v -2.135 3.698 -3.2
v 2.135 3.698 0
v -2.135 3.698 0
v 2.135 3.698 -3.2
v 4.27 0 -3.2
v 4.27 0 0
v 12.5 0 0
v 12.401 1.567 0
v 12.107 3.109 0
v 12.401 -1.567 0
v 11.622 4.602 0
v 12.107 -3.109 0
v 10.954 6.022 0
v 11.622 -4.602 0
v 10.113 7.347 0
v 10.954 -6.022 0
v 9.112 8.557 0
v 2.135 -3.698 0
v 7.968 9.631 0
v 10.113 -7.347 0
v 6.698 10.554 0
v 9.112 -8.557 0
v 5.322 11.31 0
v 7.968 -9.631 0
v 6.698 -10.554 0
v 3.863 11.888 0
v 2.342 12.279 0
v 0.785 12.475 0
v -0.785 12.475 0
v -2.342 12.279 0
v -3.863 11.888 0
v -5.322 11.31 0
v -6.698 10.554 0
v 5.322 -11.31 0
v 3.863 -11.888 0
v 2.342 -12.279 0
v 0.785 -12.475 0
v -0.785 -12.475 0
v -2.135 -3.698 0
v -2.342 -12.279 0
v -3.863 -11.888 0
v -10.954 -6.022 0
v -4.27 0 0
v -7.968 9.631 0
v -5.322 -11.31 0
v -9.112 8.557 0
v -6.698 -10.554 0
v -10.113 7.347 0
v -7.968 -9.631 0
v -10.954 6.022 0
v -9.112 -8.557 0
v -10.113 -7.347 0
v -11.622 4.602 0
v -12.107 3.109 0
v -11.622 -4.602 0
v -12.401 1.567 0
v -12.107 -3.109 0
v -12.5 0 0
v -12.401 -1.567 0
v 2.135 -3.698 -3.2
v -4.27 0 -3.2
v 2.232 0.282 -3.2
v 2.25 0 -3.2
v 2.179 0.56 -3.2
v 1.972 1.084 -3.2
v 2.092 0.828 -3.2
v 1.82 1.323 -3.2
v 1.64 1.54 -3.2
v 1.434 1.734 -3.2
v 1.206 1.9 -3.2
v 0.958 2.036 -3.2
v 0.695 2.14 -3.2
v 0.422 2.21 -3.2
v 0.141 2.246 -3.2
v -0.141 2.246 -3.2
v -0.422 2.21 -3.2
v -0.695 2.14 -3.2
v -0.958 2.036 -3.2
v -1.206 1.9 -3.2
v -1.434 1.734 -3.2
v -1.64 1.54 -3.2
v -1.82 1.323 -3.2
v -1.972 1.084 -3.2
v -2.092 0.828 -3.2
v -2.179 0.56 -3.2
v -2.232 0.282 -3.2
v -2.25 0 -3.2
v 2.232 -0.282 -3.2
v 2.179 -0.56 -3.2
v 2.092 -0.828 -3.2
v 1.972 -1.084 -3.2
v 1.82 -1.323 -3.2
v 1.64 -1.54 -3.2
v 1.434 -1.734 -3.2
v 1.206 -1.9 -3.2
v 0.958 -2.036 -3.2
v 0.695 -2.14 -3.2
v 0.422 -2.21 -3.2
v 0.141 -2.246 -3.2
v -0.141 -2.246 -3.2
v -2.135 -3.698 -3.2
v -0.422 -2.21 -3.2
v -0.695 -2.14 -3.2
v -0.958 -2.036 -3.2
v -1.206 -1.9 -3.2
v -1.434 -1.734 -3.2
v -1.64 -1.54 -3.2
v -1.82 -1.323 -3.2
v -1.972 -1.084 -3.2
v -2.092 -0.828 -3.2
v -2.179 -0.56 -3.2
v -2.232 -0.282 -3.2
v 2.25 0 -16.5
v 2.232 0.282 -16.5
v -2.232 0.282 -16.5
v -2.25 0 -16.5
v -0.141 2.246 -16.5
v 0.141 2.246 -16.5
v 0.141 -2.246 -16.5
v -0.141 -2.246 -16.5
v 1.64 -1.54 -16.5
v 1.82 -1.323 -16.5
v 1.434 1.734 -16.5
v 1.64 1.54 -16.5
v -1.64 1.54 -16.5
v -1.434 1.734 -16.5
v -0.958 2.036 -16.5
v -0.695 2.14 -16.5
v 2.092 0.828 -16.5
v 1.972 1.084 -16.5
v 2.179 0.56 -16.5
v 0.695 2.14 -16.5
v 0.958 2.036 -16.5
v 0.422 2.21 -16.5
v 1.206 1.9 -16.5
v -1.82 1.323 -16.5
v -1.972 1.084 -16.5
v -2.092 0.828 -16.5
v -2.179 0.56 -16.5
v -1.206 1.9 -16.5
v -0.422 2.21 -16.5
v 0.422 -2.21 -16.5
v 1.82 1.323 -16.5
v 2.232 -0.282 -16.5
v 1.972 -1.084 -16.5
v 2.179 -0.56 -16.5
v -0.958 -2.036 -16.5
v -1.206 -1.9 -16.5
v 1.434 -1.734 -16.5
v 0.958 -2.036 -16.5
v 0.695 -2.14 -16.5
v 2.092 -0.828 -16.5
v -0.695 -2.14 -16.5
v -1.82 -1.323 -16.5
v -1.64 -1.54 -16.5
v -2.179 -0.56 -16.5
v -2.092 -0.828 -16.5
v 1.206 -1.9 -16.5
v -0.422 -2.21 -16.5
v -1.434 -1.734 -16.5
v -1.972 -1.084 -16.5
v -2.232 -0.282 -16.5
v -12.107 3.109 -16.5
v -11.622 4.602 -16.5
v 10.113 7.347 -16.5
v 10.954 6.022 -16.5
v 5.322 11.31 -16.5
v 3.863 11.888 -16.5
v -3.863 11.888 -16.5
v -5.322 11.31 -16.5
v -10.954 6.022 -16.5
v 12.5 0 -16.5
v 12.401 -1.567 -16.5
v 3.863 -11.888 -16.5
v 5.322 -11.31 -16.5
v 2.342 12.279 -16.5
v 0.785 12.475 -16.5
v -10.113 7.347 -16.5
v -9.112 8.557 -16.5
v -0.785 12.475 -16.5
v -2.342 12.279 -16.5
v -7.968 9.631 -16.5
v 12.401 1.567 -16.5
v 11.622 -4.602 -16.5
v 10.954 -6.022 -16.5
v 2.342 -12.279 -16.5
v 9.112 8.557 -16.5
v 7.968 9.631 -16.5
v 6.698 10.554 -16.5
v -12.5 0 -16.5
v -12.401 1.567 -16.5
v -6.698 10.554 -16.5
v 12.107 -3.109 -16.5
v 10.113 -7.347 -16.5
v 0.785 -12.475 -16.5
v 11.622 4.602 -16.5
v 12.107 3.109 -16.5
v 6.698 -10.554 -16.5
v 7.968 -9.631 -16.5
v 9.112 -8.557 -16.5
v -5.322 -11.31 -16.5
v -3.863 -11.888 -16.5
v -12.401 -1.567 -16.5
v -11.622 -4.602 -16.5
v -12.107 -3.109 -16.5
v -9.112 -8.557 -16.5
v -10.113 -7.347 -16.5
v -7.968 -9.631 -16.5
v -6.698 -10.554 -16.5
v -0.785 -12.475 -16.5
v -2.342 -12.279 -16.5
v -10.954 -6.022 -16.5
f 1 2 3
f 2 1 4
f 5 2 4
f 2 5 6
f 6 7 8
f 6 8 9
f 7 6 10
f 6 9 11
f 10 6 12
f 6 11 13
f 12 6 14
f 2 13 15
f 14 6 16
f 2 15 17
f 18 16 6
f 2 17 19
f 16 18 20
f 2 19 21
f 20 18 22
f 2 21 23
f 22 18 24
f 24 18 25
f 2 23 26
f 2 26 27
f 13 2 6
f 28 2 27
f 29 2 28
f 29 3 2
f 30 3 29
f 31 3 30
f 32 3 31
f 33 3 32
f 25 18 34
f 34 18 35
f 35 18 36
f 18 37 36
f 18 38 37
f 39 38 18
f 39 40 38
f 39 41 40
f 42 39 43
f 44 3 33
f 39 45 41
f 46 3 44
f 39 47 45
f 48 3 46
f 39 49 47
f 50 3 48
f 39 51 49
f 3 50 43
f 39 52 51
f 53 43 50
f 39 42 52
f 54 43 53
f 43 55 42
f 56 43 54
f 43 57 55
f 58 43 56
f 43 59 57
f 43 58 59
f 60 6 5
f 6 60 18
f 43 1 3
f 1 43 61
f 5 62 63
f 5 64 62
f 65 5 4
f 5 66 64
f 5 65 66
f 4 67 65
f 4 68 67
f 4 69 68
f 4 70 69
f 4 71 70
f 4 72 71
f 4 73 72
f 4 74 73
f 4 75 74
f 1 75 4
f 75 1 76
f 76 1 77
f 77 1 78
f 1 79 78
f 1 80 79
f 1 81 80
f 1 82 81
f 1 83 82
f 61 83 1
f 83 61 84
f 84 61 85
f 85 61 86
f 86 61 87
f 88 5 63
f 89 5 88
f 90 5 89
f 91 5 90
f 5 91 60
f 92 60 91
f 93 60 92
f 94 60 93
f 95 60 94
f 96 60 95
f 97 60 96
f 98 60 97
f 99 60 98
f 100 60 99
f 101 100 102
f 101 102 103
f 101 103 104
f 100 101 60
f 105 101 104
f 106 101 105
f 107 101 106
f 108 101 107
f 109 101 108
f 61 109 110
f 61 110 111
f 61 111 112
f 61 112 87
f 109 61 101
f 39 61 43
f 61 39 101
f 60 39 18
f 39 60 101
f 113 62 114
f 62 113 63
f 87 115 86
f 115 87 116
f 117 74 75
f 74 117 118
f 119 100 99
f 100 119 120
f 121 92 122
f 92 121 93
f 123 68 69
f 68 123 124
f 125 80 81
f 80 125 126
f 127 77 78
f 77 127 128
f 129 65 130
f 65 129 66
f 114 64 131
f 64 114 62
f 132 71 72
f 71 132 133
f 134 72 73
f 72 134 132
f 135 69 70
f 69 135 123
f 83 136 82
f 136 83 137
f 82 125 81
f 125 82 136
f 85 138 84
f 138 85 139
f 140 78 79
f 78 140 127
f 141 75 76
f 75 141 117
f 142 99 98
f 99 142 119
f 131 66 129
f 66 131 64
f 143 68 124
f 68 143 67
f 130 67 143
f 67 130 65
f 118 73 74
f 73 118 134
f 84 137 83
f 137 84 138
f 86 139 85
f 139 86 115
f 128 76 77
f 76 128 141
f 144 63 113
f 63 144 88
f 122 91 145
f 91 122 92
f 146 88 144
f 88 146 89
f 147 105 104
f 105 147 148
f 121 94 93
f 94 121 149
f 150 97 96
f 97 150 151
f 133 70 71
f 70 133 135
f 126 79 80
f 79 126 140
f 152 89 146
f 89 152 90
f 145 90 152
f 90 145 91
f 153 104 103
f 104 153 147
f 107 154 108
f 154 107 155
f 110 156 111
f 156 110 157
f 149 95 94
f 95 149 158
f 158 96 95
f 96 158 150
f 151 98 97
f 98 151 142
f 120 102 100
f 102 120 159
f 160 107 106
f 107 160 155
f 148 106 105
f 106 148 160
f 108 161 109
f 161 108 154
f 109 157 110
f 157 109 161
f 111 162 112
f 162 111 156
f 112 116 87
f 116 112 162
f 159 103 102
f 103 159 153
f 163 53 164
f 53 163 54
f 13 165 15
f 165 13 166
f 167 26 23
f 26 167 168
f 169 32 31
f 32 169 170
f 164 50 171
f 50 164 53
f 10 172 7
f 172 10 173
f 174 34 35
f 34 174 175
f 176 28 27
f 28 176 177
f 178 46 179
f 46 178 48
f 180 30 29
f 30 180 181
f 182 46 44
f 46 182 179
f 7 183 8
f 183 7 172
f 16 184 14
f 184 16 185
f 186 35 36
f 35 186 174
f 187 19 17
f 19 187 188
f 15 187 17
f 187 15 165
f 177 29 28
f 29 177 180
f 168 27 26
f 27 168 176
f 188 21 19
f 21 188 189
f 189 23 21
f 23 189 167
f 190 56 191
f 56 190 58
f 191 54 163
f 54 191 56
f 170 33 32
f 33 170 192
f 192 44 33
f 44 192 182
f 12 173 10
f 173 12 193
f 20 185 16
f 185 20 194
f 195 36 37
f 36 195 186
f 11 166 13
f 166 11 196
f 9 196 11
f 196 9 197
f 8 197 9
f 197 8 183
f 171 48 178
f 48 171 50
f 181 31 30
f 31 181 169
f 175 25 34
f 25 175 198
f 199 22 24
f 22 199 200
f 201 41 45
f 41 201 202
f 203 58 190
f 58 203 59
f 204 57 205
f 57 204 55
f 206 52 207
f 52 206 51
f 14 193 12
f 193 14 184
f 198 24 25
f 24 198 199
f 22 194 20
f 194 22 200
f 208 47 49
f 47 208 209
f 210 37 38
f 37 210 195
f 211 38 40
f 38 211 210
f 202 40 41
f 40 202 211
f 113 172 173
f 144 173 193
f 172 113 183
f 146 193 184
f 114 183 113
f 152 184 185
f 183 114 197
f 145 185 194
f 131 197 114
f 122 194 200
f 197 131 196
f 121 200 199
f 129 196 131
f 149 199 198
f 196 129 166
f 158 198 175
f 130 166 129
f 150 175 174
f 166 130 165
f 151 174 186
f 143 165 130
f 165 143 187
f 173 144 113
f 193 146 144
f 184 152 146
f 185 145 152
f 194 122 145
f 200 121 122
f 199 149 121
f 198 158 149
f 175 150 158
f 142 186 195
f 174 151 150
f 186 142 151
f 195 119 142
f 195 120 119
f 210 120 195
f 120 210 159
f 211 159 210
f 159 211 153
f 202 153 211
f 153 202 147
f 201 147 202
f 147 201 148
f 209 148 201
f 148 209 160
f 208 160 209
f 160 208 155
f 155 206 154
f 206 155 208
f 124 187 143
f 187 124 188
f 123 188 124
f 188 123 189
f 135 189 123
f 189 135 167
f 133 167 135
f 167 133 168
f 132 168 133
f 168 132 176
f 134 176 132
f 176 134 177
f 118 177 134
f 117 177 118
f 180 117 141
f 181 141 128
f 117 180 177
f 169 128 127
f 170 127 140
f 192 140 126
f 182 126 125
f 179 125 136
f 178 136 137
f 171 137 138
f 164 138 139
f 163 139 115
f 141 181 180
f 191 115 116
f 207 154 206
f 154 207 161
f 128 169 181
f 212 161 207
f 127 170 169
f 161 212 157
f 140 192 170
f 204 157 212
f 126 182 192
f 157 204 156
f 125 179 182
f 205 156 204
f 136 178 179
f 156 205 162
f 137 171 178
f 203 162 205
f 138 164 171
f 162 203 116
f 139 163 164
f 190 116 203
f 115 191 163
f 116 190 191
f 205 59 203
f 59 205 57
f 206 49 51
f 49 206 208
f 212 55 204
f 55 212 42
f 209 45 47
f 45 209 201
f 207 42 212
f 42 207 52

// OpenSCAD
$fn = 50;

difference() {
	union() {
		translate(v = [0, 0, -16.5]) {
			cylinder(h = 16.5, r = 12.5);
		}
	}
	union() {
		translate(v = [0, 0, 0]) {
			rotate(a = [0, 0, 0]) {
				difference() {
					union() {
						translate(v = [0, 0, -3.2]) {
							linear_extrude(height = 3.2) {
								polygon(points = [[4.2698, 0.0], [2.1349000000000005, 3.697755269078796], [-2.134899999999999, 3.6977552690787965], [-4.2698, 5.228996902999369e-16], [-2.134900000000002, -3.6977552690787956], [2.1348999999999974, -3.697755269078798]]);
							}
						}
					}
					union();
				}
			}
		}
		#translate(v = [0, 0, -100.0]) {
			cylinder(h = 200, r = 2.25);
		}
	}
}
